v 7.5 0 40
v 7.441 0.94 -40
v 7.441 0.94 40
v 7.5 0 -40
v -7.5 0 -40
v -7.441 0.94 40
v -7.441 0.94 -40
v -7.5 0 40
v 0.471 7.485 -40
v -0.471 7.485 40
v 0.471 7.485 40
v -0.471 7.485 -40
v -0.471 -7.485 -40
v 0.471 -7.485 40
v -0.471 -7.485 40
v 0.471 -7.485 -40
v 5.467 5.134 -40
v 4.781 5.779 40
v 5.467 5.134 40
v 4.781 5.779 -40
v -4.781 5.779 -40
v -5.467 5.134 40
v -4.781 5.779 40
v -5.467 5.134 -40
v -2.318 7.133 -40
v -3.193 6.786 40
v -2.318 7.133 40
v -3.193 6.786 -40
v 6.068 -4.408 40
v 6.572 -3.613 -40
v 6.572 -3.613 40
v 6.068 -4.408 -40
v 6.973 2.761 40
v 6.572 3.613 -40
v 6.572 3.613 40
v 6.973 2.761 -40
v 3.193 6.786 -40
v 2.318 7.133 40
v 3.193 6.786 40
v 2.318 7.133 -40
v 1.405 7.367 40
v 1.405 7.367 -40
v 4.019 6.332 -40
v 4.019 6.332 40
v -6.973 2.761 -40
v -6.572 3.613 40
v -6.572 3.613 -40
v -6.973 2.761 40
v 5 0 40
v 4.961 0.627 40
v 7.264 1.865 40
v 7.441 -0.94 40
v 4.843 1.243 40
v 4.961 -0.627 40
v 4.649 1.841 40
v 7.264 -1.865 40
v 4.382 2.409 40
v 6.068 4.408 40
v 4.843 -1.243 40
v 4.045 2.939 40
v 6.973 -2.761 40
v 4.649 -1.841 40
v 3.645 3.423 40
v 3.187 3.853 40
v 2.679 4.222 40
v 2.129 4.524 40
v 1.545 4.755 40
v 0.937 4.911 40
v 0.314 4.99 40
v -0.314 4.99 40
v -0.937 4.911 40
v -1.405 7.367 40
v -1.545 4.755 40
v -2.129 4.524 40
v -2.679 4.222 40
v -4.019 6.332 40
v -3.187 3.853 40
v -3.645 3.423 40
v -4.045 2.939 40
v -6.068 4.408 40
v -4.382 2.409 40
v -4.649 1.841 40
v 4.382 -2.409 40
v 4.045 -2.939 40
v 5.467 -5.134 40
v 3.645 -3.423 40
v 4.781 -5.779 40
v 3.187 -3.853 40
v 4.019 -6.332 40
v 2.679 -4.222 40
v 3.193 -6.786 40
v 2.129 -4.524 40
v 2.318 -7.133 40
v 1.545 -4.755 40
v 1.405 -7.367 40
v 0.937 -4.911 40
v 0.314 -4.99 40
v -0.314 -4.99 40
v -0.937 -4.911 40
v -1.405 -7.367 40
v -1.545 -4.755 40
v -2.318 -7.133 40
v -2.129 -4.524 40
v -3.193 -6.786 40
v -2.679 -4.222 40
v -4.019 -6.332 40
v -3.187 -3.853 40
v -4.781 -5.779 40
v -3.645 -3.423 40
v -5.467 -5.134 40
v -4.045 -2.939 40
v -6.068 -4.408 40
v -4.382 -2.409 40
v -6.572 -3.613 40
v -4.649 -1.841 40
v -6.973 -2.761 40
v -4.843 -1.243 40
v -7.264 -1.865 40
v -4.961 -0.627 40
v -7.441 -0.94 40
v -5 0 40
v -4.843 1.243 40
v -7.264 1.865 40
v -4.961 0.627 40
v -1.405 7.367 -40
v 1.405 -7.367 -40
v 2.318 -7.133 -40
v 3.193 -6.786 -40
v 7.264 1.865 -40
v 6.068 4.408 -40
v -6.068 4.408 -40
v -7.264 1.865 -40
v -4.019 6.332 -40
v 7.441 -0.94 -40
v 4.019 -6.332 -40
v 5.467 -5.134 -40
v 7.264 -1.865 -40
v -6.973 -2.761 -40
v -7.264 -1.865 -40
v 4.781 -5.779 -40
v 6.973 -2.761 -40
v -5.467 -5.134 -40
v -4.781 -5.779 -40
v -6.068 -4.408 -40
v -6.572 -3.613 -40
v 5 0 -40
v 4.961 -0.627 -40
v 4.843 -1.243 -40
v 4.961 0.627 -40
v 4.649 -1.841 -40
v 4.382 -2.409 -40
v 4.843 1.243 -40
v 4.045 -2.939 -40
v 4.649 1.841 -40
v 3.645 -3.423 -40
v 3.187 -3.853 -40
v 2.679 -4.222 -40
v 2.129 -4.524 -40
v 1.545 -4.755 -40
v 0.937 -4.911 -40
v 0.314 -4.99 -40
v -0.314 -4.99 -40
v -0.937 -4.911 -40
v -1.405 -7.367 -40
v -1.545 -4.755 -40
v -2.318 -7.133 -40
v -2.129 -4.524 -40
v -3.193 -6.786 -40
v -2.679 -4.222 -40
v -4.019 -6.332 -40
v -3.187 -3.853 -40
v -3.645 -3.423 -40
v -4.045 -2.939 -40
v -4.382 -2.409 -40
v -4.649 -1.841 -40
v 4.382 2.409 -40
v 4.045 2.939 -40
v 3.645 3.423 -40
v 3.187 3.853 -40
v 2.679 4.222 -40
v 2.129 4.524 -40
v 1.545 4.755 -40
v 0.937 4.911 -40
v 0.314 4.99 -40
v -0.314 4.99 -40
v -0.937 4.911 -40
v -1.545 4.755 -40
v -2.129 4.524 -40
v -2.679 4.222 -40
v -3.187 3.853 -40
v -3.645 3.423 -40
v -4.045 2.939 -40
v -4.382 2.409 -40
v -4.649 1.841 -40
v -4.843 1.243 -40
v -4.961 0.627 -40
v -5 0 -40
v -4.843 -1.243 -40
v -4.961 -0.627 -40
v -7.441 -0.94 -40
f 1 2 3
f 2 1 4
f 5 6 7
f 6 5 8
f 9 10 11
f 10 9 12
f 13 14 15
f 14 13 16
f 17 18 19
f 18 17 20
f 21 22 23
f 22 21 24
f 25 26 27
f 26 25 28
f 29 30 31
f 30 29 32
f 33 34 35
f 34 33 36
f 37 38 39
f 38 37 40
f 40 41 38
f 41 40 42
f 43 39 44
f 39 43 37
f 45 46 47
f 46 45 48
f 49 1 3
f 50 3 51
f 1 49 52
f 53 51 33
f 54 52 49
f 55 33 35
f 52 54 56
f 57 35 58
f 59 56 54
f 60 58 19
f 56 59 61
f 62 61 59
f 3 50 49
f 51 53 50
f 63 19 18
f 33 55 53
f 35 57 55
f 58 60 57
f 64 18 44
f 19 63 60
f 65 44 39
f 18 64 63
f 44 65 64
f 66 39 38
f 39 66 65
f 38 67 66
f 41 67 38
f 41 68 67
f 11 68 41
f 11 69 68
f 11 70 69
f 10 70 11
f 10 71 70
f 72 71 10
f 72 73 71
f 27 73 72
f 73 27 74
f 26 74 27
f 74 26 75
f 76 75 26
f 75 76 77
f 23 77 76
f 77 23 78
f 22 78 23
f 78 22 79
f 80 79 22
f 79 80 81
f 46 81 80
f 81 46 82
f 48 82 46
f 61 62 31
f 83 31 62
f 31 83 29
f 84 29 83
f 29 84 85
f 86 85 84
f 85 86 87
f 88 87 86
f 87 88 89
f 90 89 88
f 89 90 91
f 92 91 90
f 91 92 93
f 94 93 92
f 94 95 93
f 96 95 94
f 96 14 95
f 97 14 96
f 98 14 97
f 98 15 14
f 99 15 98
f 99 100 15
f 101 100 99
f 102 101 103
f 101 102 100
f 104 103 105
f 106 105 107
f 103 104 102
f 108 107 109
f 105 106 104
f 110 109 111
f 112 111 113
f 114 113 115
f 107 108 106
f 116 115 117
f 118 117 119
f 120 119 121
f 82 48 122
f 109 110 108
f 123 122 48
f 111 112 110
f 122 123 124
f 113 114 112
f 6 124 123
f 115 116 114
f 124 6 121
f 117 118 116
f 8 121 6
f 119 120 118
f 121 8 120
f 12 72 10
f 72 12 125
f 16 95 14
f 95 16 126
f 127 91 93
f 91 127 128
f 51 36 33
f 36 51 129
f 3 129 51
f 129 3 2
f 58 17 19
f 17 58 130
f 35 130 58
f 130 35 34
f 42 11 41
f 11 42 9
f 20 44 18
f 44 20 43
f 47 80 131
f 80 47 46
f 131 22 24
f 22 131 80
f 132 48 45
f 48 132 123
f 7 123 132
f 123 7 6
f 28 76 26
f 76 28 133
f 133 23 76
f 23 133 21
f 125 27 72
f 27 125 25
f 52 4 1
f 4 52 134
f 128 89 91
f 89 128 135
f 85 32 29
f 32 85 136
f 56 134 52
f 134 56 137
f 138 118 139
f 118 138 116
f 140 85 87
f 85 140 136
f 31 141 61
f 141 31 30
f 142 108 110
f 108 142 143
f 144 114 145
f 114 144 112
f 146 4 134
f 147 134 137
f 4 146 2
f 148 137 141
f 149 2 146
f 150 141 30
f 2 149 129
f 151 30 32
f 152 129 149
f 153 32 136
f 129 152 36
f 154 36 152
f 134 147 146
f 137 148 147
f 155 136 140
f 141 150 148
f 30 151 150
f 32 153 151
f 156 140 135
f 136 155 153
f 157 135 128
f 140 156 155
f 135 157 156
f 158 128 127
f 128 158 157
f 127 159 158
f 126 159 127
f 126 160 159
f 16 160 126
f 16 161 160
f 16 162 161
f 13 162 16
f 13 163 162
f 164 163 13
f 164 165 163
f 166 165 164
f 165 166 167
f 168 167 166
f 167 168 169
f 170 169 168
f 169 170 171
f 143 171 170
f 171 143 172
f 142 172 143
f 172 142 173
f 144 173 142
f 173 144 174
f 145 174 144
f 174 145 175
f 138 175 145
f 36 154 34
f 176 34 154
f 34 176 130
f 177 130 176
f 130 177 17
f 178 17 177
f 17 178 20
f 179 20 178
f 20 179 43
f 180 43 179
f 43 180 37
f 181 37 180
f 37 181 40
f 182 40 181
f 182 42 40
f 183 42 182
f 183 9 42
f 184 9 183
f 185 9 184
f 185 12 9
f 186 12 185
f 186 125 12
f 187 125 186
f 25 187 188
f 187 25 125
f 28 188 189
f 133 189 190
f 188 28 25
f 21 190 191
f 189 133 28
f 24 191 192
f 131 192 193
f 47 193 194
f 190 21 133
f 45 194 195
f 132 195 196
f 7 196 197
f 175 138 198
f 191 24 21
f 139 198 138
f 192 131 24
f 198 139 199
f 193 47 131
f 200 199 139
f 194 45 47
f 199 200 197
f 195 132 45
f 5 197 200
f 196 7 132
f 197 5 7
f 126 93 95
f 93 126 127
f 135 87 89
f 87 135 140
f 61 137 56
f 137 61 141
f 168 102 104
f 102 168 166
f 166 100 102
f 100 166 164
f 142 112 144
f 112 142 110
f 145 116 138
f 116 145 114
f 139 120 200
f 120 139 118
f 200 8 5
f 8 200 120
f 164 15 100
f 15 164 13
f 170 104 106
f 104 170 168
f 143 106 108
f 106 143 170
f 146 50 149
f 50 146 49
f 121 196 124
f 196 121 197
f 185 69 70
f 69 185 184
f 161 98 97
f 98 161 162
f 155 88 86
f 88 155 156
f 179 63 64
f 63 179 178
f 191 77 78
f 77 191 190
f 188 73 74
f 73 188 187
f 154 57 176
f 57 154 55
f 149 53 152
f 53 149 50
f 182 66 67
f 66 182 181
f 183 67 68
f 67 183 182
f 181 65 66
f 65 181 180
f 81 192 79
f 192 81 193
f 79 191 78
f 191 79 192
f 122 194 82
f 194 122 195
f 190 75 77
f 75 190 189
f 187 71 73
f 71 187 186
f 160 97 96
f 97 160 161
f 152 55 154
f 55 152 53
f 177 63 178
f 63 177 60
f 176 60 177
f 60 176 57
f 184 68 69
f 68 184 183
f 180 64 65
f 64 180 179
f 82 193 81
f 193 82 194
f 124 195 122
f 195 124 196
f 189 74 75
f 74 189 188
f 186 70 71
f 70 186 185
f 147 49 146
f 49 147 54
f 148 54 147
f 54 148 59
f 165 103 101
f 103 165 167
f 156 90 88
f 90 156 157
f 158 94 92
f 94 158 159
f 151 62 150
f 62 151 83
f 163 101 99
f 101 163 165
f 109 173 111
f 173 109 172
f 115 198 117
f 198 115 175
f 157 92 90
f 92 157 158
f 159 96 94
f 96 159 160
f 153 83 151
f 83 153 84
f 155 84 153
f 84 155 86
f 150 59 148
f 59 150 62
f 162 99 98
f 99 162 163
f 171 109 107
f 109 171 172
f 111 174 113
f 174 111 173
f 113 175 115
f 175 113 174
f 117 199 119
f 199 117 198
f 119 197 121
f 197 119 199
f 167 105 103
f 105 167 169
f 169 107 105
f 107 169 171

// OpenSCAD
$fn = 50;


difference() {
	union() {
		translate(v = [0, 0, -40.0000000000]) {
			cylinder(h = 80, r = 7.5000000000);
		}
	}
	union() {
		translate(v = [0, 0, -100.0000000000]) {
			cylinder(h = 200, r = 5);
		}
	}
}
